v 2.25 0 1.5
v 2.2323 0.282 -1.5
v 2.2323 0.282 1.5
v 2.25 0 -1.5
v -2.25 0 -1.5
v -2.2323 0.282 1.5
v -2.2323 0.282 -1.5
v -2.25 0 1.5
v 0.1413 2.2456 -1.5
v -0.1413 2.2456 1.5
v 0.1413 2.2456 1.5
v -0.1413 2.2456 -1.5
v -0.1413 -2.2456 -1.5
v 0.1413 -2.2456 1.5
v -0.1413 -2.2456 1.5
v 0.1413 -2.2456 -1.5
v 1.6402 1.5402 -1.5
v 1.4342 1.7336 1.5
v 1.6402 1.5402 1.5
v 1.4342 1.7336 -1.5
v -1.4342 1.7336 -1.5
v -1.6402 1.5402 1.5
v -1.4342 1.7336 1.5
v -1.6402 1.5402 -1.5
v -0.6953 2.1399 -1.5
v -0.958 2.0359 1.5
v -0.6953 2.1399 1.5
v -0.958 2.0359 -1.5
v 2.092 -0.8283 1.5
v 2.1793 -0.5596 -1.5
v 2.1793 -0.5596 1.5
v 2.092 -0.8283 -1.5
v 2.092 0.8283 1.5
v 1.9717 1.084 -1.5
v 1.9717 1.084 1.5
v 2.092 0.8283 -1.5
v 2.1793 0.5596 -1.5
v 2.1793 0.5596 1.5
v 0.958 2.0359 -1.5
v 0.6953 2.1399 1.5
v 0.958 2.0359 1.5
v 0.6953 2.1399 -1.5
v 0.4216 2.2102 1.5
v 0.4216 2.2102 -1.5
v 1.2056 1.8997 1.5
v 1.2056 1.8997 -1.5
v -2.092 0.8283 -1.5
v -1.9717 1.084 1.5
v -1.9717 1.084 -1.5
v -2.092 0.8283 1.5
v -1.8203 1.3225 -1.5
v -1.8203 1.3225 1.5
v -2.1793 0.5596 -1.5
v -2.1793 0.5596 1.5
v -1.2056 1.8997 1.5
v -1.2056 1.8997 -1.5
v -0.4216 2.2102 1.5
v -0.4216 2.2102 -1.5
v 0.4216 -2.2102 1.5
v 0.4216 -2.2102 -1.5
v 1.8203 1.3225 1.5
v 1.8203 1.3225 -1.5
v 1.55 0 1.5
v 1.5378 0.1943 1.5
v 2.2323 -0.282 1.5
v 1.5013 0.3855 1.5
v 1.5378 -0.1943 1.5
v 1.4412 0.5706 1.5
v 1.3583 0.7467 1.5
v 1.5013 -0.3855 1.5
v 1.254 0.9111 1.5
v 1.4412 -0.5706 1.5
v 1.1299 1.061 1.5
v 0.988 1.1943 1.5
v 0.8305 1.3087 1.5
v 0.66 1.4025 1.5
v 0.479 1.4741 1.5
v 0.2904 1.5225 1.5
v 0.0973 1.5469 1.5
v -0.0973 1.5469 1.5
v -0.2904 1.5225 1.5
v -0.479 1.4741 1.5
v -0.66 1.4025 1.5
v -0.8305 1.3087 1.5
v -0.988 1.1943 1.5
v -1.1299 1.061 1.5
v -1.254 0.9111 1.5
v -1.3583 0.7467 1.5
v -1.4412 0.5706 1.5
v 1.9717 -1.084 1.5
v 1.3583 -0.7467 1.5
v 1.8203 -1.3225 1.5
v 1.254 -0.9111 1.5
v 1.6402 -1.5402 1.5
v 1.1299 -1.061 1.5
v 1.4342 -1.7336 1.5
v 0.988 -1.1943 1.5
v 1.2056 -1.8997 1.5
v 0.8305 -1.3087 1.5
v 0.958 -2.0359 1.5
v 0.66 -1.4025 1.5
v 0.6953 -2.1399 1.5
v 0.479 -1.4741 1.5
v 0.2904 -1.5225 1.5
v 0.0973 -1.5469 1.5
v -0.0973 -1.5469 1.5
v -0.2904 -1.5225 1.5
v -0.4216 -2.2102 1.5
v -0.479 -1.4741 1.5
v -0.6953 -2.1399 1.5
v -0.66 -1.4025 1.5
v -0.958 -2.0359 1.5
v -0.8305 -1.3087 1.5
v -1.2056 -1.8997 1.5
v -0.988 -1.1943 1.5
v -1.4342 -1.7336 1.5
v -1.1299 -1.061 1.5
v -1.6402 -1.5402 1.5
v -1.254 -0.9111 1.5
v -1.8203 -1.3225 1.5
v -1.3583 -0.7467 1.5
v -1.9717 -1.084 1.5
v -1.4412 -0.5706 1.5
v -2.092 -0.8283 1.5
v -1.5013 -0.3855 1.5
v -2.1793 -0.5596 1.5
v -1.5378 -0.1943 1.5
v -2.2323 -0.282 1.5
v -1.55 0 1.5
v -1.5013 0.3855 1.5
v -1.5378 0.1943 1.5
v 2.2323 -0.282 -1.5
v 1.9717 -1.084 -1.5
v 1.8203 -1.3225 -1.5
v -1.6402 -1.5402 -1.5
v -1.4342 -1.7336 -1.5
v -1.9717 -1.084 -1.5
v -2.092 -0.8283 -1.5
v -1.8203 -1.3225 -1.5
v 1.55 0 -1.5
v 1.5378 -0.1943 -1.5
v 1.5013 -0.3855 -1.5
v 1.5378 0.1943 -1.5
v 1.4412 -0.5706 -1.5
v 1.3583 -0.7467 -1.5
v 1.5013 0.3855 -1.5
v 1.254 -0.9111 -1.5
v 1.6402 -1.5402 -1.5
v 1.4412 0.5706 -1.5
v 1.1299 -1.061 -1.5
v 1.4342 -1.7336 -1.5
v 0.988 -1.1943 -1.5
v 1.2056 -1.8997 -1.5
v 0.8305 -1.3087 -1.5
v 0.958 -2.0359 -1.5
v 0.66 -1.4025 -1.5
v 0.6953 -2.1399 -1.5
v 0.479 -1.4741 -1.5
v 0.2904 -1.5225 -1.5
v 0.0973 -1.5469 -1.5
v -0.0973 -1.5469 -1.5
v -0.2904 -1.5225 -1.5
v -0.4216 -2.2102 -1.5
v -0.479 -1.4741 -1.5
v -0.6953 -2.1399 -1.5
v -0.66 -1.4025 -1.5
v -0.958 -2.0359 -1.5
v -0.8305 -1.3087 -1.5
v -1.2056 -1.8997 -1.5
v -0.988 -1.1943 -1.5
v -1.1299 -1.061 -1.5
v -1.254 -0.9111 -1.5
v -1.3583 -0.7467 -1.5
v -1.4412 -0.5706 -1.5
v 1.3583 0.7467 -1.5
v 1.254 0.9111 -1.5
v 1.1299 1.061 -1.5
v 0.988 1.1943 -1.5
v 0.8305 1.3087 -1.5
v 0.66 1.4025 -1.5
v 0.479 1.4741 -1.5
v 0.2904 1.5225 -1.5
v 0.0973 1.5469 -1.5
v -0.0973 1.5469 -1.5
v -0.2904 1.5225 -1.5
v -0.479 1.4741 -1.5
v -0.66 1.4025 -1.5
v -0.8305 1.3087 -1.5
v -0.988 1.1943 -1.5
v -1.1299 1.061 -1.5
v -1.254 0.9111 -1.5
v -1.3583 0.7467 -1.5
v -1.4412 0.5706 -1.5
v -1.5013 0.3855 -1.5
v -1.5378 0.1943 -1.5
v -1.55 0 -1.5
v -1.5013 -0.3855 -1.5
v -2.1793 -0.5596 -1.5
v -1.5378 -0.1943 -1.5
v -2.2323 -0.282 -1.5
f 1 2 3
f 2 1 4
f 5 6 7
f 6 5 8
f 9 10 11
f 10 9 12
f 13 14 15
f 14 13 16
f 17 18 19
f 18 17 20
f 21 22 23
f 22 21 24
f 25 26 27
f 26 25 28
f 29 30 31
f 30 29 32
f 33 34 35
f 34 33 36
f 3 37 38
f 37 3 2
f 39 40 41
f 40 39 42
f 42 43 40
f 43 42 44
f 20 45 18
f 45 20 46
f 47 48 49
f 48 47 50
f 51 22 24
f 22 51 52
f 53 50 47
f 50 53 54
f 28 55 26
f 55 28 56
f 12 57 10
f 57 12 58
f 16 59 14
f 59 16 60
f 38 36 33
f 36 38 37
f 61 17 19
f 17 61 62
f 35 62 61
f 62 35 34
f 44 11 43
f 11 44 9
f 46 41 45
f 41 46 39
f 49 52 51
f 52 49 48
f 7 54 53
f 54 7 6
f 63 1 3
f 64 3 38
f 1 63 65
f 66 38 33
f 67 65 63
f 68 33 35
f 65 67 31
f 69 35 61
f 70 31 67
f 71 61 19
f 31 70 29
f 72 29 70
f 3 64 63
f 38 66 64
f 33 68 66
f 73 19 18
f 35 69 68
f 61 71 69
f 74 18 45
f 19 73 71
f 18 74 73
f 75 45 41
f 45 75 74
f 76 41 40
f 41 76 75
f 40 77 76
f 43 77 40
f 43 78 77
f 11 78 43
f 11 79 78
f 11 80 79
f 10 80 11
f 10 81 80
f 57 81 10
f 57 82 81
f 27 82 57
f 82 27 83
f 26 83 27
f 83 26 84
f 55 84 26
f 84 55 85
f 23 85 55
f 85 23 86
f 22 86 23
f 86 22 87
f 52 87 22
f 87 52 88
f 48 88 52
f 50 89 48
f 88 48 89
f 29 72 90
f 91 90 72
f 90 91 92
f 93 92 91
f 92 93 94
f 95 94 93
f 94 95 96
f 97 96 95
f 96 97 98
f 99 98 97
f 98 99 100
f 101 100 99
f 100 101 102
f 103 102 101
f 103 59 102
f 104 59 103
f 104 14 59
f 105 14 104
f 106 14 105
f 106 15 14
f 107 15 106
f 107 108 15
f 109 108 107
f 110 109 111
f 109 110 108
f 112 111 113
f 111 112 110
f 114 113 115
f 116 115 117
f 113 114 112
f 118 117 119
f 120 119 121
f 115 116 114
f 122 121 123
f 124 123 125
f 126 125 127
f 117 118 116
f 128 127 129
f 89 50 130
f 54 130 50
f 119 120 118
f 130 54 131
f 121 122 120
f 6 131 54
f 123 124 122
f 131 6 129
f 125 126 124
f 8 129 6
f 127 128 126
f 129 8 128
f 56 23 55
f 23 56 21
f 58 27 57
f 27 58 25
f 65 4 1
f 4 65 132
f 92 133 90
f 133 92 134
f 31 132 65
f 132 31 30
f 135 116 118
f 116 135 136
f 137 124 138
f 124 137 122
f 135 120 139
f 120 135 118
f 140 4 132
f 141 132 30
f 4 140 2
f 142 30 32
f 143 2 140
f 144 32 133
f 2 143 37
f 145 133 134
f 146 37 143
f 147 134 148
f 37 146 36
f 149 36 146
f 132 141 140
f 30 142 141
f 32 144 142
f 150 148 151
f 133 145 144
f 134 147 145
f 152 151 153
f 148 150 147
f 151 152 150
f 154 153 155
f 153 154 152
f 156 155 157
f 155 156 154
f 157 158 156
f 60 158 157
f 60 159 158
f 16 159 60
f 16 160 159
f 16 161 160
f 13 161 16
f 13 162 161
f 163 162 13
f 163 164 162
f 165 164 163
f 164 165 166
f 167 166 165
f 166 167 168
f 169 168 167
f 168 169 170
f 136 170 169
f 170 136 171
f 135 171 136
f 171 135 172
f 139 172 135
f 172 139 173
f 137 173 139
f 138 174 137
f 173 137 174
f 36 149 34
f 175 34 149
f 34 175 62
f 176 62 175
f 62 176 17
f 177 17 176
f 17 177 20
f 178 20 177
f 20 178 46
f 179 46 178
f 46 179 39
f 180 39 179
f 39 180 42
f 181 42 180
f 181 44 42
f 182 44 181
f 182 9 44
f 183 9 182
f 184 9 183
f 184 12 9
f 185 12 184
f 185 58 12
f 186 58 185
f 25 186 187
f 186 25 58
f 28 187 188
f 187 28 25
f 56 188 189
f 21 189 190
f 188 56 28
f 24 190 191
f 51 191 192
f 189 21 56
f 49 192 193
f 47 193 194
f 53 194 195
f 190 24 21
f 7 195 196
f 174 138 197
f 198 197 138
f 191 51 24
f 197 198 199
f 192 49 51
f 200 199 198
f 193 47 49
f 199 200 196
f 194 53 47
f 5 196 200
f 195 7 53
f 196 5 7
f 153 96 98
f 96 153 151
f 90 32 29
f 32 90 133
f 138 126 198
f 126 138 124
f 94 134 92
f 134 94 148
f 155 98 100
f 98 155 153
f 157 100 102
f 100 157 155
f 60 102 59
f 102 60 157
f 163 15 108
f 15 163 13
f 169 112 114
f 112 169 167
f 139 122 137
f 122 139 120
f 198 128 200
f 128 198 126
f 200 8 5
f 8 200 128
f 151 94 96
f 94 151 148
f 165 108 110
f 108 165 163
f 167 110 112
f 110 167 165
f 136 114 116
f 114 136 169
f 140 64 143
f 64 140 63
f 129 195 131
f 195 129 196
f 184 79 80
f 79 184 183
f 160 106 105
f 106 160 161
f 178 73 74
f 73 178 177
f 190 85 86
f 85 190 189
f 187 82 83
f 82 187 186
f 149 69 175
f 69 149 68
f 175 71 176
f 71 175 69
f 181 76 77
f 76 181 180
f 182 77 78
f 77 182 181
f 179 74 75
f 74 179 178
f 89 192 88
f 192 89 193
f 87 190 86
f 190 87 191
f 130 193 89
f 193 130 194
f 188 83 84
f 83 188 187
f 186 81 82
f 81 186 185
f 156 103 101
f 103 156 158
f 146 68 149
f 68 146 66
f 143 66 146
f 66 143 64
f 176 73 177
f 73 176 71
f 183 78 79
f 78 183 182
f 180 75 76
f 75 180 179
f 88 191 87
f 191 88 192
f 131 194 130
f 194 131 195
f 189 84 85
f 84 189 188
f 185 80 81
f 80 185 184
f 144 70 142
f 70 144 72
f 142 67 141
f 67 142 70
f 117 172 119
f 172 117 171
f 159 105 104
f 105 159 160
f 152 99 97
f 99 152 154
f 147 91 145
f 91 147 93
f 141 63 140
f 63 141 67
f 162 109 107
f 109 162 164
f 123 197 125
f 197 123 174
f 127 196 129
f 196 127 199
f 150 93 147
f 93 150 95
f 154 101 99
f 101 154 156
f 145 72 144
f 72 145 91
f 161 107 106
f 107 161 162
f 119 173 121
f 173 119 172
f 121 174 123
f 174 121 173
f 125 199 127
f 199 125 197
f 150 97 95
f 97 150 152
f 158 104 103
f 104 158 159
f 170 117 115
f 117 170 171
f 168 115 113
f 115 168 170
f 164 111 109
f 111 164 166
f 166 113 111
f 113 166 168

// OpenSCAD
$fn = 50;


difference() {
	union() {
		translate(v = [0, 0, -1.5000000000]) {
			cylinder(h = 3, r = 2.2500000000);
		}
	}
	union() {
		translate(v = [0, 0, -100.0000000000]) {
			cylinder(h = 200, r = 1.5500000000);
		}
	}
}
